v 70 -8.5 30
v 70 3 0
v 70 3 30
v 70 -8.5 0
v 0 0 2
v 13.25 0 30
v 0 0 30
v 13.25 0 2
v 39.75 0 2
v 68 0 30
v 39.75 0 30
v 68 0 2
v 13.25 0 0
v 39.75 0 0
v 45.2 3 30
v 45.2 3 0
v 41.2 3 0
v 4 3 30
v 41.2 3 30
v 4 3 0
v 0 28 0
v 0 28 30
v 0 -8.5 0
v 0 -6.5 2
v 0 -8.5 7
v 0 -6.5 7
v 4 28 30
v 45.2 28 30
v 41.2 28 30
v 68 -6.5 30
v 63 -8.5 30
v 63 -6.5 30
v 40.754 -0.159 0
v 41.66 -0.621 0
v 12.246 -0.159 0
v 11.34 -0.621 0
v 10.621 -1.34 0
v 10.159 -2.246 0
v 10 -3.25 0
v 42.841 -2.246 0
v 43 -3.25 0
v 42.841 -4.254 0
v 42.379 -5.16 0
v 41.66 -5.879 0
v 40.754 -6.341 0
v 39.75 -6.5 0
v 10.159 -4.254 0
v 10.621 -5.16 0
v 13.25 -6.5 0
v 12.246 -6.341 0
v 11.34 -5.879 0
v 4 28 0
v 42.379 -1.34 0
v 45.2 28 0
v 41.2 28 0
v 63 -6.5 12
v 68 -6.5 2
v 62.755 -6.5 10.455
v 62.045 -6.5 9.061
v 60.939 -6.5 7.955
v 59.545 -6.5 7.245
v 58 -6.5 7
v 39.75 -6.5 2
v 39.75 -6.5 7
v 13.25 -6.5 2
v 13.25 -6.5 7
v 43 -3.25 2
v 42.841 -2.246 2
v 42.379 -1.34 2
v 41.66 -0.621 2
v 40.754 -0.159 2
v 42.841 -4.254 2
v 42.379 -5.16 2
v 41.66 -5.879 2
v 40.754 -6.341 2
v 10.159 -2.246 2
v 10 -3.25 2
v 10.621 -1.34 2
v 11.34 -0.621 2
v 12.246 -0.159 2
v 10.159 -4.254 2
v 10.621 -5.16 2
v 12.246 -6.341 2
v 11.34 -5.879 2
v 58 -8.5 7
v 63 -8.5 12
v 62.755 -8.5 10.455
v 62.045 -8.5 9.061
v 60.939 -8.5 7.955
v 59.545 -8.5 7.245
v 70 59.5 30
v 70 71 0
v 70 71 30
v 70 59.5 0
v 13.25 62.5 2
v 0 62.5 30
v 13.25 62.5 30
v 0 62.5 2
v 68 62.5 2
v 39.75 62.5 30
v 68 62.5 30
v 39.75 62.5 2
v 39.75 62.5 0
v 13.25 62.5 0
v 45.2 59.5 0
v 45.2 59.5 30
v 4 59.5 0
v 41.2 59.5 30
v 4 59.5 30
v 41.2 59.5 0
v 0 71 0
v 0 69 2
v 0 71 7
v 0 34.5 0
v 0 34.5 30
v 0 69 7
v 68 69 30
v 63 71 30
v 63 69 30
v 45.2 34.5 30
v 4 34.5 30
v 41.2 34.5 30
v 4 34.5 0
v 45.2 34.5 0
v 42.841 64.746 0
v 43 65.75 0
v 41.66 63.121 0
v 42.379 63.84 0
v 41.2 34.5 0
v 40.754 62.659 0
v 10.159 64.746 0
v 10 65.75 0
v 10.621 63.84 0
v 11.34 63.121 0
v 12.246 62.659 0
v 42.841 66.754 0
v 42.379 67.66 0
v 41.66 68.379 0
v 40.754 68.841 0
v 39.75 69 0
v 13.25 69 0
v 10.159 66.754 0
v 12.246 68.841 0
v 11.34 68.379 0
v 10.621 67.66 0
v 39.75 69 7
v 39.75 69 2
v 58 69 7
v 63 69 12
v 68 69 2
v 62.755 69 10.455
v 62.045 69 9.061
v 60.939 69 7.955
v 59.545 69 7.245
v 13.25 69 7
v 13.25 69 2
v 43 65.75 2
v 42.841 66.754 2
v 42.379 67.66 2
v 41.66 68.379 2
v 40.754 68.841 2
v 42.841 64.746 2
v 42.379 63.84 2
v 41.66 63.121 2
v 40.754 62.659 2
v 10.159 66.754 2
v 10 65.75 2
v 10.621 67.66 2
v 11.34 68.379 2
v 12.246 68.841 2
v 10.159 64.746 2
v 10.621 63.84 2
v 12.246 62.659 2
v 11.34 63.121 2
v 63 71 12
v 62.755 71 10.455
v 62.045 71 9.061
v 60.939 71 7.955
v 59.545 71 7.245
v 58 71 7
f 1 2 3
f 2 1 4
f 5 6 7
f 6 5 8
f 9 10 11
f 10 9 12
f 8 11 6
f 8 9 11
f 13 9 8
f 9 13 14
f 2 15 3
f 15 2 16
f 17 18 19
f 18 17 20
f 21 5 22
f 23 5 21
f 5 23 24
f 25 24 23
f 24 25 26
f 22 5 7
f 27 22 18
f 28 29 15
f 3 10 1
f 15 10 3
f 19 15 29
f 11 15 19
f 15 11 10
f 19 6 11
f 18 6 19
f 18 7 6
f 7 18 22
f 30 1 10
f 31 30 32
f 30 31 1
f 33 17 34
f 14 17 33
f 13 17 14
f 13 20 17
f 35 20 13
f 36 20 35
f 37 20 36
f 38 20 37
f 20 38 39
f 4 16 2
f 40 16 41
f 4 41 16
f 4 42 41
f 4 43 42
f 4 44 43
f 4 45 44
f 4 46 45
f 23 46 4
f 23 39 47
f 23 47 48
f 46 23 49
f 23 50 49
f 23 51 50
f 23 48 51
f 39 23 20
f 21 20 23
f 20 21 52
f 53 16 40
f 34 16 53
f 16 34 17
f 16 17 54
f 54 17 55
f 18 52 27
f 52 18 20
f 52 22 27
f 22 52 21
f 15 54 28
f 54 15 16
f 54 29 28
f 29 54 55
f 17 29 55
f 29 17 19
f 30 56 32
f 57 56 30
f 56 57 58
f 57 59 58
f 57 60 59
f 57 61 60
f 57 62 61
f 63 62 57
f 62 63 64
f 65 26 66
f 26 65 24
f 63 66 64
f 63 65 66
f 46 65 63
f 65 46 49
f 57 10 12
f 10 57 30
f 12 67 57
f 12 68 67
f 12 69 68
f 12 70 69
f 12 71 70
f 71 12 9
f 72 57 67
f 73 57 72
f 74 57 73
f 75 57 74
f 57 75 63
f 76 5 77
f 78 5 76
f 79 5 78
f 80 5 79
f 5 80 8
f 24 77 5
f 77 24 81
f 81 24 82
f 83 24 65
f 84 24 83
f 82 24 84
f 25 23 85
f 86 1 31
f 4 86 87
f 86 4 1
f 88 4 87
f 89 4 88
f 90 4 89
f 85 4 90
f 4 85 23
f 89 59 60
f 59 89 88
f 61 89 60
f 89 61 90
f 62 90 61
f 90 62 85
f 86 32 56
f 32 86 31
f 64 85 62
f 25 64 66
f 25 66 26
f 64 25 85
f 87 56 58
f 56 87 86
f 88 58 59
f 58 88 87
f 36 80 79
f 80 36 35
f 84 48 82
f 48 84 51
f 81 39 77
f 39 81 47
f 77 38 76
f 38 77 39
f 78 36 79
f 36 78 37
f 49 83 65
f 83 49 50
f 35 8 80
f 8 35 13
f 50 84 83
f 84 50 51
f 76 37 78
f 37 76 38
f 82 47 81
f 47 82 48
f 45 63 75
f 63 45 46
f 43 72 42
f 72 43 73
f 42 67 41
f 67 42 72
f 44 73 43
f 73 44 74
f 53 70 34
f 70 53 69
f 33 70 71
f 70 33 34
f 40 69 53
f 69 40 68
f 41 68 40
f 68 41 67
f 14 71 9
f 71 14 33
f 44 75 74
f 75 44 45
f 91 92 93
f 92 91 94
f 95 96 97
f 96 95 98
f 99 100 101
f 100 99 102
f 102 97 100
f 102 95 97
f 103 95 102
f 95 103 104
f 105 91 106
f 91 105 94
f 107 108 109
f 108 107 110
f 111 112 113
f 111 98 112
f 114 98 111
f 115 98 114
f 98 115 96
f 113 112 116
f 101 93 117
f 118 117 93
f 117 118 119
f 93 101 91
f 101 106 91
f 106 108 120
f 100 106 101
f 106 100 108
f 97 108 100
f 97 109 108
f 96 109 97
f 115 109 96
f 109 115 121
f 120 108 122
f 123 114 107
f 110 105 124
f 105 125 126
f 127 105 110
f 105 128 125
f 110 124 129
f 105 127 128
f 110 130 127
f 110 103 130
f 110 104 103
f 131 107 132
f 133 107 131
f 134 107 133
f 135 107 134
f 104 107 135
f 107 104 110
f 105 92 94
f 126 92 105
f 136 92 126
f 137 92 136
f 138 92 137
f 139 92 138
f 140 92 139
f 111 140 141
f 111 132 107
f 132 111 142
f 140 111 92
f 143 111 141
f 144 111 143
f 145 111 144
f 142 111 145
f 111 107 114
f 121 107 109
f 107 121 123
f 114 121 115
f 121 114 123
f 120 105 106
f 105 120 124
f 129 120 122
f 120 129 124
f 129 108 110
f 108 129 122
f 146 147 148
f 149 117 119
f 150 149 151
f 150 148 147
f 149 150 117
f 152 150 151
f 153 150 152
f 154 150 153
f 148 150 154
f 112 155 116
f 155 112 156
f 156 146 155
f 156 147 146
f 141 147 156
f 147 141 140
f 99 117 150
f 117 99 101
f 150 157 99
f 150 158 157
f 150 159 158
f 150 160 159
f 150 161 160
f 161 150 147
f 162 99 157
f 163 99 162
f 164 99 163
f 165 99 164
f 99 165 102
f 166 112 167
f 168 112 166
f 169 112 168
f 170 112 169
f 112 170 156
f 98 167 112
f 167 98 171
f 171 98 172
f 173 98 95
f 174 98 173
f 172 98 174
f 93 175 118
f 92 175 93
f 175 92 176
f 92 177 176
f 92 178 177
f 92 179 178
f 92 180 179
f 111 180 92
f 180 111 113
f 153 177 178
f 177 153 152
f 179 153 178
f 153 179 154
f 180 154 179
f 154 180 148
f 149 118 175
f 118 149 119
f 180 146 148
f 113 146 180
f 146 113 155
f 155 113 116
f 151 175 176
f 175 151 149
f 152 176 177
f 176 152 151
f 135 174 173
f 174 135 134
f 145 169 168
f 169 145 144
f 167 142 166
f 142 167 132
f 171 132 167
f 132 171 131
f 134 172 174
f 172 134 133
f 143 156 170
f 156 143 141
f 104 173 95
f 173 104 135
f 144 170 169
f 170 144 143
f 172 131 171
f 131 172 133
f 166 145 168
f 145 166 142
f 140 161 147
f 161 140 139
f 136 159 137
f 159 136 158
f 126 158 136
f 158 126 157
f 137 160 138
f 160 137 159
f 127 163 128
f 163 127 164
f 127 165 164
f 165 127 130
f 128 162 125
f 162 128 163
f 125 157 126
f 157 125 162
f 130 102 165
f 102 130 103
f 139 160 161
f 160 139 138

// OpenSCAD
cd = 25; // claw depth
cth = 4; // claw thickness
bth = 3; // back plate thickness
fsz = 5; // frame size (the ipad blocker in the front)
fth = 2; // frame thickness (the ipad blocker in the front)
sfsz = 2;// support frame size (the one surround ipad)


h = 70;
l = 30;
nsz = 0; // faceid notch size 15

pth = 6.5;// ipad thickness + tolerance
dth = 37.2;// desk thickness + tolerance

module back_plate() {
    translate([0,0,-bth]) cube([h,l,bth]);
    translate([0,0,-(bth+cd)]) cube([cth,l,bth+cd]);
    translate([dth+cth,0,-(bth+cd)]) cube([cth,l,bth+cd]);
}

module front_frame() {
    difference() {
        cube([h,l,pth]);
        translate([-sfsz,sfsz,0]) cube([h,l,pth]);
    }

    translate([0,0,pth]) difference() {
        cube([h,l,fth]);
        $fn=20; translate([-fsz-sfsz,fsz+sfsz,0]) minkowski() {
            rr = 5; // round corner radius
            rd = rr*2;
            translate([rr,rr,0]) cube([h-rd,l-rd,fth]);
            cylinder(r=rr,h=0.001);
        }
        large = 300; translate([0,sfsz,0]) cube([nsz,large,fth]);
    }
}

module speaker_hole(length, large) {
    mirror([0,1,0]) rotate([90,0,0]) translate([pth/2,pth/2,0]) union() { 
        $fn = 20;
        cylinder(d=pth,h=large);
        translate([length/2-pth/2,0,0]) 
            linear_extrude(large) square([length-pth,pth], center=true);
        translate([length-pth,0,0]) cylinder(d=pth,h=large);
    }
}


module ipad_mount() {
    intersection() {
        large = 300;
        union() { back_plate(); front_frame(); }
        $fn=20; translate([0,0,-large]) minkowski() {
            rr = 0; // round corner radius
            rd = rr*2;
            translate([rr-large,rr,0]) cube([h-rd+large,l-rd+large,fth+pth+large]);
            cylinder(r=rr,h=0.001);
        }
    }
}

module ipad_mount_speaker() {
    difference() {
        ipad_mount();
        translate([10,0,0]) speaker_hole(length=33, large=100);
    }
}

rotate([90,0,0]) ipad_mount_speaker();
translate([0,cd*2.5,0]) mirror([0,1,0]) rotate([90,0,0]) ipad_mount_speaker();
